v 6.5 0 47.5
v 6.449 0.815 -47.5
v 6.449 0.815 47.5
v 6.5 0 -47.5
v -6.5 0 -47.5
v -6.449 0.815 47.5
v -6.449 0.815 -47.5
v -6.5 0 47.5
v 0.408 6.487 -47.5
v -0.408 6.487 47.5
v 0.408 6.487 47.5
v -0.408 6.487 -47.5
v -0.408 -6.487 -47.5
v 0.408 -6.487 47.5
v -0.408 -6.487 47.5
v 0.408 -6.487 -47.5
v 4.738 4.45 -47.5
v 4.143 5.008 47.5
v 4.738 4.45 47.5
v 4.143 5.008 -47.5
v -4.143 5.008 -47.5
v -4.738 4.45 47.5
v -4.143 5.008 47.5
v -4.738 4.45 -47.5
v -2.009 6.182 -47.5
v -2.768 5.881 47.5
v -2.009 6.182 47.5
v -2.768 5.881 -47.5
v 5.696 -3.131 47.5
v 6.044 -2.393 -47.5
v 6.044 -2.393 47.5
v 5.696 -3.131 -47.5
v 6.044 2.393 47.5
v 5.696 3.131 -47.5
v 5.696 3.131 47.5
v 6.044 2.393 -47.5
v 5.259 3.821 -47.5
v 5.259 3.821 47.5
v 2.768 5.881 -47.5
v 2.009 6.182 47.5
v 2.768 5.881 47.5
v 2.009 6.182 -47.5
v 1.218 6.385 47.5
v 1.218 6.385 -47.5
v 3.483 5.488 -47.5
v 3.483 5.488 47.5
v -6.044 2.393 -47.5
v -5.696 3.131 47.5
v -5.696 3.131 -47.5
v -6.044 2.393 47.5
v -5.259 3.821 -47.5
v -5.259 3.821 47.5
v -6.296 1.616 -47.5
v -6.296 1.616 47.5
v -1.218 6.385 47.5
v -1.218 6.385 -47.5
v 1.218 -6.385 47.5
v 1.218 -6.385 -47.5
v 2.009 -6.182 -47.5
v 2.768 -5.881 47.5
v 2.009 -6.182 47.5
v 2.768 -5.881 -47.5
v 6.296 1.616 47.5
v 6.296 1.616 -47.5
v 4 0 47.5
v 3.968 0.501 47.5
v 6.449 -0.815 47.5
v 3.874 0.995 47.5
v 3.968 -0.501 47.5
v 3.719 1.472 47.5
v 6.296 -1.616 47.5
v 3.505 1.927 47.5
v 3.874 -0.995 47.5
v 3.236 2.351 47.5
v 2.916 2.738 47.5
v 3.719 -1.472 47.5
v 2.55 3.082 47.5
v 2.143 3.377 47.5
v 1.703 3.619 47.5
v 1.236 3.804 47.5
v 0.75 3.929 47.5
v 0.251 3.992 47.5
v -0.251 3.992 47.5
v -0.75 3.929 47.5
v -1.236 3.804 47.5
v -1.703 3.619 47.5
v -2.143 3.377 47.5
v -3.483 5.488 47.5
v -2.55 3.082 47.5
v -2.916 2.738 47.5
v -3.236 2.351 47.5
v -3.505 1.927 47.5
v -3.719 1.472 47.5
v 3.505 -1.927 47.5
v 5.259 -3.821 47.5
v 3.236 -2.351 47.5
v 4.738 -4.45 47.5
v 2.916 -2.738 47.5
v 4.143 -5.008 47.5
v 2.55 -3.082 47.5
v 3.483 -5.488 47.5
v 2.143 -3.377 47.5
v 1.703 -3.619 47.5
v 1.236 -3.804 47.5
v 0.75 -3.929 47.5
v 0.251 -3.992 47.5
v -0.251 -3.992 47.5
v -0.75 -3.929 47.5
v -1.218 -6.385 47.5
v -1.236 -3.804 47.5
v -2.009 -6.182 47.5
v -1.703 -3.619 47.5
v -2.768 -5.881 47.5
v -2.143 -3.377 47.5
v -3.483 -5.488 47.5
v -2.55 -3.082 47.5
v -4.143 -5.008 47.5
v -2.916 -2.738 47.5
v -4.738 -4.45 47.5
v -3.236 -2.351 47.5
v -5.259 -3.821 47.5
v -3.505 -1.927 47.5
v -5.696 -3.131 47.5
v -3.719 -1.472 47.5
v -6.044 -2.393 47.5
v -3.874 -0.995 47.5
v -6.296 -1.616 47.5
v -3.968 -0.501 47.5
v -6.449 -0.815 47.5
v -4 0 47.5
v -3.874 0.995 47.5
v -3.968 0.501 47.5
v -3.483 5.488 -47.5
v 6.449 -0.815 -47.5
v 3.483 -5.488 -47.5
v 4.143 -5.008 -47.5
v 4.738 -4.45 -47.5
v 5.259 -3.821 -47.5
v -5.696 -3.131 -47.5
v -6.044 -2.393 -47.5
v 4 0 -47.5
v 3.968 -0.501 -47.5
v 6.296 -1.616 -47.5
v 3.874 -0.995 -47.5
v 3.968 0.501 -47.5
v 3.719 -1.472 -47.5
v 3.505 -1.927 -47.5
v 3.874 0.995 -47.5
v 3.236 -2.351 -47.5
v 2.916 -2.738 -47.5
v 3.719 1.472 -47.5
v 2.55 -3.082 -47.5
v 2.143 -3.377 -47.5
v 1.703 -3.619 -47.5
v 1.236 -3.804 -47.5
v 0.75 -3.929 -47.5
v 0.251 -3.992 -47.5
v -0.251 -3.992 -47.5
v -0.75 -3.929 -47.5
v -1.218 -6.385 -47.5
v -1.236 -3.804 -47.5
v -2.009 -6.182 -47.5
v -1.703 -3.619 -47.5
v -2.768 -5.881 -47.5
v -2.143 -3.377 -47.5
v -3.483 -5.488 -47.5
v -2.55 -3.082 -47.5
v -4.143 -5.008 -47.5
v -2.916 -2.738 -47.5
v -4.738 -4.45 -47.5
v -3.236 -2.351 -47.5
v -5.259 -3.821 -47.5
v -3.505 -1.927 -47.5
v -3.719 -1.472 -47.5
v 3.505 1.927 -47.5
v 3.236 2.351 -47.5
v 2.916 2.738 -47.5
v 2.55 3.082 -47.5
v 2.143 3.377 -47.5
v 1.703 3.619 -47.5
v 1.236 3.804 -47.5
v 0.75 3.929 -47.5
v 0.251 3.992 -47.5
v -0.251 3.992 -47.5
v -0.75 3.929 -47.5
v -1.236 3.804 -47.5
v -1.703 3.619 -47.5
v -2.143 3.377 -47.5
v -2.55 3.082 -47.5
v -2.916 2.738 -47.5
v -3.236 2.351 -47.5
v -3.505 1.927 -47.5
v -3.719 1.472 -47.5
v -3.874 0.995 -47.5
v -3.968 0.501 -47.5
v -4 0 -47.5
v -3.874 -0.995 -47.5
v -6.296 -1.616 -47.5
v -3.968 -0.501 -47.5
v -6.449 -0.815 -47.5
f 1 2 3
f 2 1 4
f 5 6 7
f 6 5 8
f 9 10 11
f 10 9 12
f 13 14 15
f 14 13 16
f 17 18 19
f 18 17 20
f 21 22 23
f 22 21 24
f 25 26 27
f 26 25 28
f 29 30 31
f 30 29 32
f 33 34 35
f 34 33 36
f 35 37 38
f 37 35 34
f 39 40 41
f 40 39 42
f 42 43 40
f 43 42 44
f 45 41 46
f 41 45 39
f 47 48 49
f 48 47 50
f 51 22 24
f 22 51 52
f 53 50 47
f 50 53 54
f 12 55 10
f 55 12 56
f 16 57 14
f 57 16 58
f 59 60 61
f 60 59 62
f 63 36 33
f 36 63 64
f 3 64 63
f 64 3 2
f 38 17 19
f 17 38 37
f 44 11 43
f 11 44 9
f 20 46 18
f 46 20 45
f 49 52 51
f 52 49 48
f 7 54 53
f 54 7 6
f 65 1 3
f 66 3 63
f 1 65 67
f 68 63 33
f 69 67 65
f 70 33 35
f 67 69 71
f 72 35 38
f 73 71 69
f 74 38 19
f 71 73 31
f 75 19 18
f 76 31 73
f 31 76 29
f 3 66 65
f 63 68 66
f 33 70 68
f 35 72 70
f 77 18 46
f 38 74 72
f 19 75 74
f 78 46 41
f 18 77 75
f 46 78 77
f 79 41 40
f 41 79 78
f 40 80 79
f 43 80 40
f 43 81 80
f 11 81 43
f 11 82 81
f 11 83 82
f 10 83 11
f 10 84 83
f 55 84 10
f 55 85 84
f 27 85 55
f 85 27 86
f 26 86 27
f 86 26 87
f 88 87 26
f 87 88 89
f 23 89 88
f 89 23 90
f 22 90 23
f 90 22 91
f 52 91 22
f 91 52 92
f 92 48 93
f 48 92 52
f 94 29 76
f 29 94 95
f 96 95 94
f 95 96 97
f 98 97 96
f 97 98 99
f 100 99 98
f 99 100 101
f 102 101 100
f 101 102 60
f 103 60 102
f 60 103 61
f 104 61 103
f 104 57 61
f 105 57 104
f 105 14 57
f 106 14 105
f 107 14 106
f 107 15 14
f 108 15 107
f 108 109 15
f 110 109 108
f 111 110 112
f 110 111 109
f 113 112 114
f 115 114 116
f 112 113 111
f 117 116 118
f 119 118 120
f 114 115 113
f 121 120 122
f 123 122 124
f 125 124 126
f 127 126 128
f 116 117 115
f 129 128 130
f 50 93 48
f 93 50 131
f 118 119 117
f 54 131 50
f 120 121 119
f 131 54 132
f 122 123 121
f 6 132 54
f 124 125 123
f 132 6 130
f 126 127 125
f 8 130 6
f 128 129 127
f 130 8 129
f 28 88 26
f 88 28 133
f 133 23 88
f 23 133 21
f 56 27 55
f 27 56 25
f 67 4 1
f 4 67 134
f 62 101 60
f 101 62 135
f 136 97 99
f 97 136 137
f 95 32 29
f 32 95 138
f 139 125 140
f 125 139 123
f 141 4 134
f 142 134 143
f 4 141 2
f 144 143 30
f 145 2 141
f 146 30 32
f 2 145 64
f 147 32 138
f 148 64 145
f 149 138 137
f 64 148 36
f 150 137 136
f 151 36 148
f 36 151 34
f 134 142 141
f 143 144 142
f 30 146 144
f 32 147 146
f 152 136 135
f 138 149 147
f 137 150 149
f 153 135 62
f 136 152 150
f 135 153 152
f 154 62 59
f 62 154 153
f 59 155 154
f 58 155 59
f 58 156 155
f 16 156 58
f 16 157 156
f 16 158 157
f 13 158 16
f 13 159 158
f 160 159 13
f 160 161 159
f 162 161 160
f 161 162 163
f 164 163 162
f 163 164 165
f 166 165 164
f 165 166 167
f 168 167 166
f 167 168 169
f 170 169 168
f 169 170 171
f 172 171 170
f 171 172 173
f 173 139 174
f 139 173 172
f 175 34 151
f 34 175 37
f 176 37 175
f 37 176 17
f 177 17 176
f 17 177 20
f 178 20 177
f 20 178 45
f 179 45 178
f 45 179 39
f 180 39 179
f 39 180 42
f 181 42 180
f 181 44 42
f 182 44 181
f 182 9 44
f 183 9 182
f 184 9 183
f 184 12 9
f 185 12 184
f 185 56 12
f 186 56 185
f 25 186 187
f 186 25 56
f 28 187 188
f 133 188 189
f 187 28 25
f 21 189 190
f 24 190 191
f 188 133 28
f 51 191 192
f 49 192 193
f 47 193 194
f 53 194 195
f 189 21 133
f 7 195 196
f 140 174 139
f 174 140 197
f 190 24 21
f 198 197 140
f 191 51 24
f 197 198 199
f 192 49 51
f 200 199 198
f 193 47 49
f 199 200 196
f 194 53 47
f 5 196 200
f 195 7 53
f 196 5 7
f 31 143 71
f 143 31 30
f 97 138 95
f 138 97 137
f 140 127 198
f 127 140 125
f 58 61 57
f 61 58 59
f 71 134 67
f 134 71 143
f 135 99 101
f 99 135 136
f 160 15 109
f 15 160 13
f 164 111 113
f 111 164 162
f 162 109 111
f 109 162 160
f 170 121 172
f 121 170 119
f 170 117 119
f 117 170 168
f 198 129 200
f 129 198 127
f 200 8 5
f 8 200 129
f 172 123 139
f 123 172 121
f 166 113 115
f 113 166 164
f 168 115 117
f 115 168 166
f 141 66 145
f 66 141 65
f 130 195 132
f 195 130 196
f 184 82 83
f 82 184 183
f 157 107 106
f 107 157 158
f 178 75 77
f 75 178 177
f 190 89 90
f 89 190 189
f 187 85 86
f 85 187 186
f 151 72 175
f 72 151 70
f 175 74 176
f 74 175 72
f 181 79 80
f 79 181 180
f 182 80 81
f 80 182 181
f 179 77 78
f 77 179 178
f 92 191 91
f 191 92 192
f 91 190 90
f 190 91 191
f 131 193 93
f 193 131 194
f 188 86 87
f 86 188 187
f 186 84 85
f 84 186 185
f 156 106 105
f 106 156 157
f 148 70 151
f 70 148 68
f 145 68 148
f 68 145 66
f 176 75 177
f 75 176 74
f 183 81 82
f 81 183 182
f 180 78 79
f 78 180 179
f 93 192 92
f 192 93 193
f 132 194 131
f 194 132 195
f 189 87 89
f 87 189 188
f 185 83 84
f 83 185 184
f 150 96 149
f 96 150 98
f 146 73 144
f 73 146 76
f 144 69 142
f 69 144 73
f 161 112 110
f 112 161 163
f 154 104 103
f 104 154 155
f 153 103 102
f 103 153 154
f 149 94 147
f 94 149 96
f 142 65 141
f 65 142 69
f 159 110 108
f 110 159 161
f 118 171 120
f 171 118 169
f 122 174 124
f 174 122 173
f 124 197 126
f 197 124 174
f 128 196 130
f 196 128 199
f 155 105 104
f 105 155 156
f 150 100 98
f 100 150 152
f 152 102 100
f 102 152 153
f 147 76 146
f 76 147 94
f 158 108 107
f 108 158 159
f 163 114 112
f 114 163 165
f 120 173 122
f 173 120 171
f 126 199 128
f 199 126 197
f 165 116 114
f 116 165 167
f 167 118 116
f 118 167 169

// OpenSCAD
$fn = 50;


difference() {
	union() {
		translate(v = [0, 0, -47.5000000000]) {
			cylinder(h = 95, r = 6.5000000000);
		}
	}
	union() {
		translate(v = [0, 0, -100.0000000000]) {
			cylinder(h = 200, r = 4);
		}
	}
}
